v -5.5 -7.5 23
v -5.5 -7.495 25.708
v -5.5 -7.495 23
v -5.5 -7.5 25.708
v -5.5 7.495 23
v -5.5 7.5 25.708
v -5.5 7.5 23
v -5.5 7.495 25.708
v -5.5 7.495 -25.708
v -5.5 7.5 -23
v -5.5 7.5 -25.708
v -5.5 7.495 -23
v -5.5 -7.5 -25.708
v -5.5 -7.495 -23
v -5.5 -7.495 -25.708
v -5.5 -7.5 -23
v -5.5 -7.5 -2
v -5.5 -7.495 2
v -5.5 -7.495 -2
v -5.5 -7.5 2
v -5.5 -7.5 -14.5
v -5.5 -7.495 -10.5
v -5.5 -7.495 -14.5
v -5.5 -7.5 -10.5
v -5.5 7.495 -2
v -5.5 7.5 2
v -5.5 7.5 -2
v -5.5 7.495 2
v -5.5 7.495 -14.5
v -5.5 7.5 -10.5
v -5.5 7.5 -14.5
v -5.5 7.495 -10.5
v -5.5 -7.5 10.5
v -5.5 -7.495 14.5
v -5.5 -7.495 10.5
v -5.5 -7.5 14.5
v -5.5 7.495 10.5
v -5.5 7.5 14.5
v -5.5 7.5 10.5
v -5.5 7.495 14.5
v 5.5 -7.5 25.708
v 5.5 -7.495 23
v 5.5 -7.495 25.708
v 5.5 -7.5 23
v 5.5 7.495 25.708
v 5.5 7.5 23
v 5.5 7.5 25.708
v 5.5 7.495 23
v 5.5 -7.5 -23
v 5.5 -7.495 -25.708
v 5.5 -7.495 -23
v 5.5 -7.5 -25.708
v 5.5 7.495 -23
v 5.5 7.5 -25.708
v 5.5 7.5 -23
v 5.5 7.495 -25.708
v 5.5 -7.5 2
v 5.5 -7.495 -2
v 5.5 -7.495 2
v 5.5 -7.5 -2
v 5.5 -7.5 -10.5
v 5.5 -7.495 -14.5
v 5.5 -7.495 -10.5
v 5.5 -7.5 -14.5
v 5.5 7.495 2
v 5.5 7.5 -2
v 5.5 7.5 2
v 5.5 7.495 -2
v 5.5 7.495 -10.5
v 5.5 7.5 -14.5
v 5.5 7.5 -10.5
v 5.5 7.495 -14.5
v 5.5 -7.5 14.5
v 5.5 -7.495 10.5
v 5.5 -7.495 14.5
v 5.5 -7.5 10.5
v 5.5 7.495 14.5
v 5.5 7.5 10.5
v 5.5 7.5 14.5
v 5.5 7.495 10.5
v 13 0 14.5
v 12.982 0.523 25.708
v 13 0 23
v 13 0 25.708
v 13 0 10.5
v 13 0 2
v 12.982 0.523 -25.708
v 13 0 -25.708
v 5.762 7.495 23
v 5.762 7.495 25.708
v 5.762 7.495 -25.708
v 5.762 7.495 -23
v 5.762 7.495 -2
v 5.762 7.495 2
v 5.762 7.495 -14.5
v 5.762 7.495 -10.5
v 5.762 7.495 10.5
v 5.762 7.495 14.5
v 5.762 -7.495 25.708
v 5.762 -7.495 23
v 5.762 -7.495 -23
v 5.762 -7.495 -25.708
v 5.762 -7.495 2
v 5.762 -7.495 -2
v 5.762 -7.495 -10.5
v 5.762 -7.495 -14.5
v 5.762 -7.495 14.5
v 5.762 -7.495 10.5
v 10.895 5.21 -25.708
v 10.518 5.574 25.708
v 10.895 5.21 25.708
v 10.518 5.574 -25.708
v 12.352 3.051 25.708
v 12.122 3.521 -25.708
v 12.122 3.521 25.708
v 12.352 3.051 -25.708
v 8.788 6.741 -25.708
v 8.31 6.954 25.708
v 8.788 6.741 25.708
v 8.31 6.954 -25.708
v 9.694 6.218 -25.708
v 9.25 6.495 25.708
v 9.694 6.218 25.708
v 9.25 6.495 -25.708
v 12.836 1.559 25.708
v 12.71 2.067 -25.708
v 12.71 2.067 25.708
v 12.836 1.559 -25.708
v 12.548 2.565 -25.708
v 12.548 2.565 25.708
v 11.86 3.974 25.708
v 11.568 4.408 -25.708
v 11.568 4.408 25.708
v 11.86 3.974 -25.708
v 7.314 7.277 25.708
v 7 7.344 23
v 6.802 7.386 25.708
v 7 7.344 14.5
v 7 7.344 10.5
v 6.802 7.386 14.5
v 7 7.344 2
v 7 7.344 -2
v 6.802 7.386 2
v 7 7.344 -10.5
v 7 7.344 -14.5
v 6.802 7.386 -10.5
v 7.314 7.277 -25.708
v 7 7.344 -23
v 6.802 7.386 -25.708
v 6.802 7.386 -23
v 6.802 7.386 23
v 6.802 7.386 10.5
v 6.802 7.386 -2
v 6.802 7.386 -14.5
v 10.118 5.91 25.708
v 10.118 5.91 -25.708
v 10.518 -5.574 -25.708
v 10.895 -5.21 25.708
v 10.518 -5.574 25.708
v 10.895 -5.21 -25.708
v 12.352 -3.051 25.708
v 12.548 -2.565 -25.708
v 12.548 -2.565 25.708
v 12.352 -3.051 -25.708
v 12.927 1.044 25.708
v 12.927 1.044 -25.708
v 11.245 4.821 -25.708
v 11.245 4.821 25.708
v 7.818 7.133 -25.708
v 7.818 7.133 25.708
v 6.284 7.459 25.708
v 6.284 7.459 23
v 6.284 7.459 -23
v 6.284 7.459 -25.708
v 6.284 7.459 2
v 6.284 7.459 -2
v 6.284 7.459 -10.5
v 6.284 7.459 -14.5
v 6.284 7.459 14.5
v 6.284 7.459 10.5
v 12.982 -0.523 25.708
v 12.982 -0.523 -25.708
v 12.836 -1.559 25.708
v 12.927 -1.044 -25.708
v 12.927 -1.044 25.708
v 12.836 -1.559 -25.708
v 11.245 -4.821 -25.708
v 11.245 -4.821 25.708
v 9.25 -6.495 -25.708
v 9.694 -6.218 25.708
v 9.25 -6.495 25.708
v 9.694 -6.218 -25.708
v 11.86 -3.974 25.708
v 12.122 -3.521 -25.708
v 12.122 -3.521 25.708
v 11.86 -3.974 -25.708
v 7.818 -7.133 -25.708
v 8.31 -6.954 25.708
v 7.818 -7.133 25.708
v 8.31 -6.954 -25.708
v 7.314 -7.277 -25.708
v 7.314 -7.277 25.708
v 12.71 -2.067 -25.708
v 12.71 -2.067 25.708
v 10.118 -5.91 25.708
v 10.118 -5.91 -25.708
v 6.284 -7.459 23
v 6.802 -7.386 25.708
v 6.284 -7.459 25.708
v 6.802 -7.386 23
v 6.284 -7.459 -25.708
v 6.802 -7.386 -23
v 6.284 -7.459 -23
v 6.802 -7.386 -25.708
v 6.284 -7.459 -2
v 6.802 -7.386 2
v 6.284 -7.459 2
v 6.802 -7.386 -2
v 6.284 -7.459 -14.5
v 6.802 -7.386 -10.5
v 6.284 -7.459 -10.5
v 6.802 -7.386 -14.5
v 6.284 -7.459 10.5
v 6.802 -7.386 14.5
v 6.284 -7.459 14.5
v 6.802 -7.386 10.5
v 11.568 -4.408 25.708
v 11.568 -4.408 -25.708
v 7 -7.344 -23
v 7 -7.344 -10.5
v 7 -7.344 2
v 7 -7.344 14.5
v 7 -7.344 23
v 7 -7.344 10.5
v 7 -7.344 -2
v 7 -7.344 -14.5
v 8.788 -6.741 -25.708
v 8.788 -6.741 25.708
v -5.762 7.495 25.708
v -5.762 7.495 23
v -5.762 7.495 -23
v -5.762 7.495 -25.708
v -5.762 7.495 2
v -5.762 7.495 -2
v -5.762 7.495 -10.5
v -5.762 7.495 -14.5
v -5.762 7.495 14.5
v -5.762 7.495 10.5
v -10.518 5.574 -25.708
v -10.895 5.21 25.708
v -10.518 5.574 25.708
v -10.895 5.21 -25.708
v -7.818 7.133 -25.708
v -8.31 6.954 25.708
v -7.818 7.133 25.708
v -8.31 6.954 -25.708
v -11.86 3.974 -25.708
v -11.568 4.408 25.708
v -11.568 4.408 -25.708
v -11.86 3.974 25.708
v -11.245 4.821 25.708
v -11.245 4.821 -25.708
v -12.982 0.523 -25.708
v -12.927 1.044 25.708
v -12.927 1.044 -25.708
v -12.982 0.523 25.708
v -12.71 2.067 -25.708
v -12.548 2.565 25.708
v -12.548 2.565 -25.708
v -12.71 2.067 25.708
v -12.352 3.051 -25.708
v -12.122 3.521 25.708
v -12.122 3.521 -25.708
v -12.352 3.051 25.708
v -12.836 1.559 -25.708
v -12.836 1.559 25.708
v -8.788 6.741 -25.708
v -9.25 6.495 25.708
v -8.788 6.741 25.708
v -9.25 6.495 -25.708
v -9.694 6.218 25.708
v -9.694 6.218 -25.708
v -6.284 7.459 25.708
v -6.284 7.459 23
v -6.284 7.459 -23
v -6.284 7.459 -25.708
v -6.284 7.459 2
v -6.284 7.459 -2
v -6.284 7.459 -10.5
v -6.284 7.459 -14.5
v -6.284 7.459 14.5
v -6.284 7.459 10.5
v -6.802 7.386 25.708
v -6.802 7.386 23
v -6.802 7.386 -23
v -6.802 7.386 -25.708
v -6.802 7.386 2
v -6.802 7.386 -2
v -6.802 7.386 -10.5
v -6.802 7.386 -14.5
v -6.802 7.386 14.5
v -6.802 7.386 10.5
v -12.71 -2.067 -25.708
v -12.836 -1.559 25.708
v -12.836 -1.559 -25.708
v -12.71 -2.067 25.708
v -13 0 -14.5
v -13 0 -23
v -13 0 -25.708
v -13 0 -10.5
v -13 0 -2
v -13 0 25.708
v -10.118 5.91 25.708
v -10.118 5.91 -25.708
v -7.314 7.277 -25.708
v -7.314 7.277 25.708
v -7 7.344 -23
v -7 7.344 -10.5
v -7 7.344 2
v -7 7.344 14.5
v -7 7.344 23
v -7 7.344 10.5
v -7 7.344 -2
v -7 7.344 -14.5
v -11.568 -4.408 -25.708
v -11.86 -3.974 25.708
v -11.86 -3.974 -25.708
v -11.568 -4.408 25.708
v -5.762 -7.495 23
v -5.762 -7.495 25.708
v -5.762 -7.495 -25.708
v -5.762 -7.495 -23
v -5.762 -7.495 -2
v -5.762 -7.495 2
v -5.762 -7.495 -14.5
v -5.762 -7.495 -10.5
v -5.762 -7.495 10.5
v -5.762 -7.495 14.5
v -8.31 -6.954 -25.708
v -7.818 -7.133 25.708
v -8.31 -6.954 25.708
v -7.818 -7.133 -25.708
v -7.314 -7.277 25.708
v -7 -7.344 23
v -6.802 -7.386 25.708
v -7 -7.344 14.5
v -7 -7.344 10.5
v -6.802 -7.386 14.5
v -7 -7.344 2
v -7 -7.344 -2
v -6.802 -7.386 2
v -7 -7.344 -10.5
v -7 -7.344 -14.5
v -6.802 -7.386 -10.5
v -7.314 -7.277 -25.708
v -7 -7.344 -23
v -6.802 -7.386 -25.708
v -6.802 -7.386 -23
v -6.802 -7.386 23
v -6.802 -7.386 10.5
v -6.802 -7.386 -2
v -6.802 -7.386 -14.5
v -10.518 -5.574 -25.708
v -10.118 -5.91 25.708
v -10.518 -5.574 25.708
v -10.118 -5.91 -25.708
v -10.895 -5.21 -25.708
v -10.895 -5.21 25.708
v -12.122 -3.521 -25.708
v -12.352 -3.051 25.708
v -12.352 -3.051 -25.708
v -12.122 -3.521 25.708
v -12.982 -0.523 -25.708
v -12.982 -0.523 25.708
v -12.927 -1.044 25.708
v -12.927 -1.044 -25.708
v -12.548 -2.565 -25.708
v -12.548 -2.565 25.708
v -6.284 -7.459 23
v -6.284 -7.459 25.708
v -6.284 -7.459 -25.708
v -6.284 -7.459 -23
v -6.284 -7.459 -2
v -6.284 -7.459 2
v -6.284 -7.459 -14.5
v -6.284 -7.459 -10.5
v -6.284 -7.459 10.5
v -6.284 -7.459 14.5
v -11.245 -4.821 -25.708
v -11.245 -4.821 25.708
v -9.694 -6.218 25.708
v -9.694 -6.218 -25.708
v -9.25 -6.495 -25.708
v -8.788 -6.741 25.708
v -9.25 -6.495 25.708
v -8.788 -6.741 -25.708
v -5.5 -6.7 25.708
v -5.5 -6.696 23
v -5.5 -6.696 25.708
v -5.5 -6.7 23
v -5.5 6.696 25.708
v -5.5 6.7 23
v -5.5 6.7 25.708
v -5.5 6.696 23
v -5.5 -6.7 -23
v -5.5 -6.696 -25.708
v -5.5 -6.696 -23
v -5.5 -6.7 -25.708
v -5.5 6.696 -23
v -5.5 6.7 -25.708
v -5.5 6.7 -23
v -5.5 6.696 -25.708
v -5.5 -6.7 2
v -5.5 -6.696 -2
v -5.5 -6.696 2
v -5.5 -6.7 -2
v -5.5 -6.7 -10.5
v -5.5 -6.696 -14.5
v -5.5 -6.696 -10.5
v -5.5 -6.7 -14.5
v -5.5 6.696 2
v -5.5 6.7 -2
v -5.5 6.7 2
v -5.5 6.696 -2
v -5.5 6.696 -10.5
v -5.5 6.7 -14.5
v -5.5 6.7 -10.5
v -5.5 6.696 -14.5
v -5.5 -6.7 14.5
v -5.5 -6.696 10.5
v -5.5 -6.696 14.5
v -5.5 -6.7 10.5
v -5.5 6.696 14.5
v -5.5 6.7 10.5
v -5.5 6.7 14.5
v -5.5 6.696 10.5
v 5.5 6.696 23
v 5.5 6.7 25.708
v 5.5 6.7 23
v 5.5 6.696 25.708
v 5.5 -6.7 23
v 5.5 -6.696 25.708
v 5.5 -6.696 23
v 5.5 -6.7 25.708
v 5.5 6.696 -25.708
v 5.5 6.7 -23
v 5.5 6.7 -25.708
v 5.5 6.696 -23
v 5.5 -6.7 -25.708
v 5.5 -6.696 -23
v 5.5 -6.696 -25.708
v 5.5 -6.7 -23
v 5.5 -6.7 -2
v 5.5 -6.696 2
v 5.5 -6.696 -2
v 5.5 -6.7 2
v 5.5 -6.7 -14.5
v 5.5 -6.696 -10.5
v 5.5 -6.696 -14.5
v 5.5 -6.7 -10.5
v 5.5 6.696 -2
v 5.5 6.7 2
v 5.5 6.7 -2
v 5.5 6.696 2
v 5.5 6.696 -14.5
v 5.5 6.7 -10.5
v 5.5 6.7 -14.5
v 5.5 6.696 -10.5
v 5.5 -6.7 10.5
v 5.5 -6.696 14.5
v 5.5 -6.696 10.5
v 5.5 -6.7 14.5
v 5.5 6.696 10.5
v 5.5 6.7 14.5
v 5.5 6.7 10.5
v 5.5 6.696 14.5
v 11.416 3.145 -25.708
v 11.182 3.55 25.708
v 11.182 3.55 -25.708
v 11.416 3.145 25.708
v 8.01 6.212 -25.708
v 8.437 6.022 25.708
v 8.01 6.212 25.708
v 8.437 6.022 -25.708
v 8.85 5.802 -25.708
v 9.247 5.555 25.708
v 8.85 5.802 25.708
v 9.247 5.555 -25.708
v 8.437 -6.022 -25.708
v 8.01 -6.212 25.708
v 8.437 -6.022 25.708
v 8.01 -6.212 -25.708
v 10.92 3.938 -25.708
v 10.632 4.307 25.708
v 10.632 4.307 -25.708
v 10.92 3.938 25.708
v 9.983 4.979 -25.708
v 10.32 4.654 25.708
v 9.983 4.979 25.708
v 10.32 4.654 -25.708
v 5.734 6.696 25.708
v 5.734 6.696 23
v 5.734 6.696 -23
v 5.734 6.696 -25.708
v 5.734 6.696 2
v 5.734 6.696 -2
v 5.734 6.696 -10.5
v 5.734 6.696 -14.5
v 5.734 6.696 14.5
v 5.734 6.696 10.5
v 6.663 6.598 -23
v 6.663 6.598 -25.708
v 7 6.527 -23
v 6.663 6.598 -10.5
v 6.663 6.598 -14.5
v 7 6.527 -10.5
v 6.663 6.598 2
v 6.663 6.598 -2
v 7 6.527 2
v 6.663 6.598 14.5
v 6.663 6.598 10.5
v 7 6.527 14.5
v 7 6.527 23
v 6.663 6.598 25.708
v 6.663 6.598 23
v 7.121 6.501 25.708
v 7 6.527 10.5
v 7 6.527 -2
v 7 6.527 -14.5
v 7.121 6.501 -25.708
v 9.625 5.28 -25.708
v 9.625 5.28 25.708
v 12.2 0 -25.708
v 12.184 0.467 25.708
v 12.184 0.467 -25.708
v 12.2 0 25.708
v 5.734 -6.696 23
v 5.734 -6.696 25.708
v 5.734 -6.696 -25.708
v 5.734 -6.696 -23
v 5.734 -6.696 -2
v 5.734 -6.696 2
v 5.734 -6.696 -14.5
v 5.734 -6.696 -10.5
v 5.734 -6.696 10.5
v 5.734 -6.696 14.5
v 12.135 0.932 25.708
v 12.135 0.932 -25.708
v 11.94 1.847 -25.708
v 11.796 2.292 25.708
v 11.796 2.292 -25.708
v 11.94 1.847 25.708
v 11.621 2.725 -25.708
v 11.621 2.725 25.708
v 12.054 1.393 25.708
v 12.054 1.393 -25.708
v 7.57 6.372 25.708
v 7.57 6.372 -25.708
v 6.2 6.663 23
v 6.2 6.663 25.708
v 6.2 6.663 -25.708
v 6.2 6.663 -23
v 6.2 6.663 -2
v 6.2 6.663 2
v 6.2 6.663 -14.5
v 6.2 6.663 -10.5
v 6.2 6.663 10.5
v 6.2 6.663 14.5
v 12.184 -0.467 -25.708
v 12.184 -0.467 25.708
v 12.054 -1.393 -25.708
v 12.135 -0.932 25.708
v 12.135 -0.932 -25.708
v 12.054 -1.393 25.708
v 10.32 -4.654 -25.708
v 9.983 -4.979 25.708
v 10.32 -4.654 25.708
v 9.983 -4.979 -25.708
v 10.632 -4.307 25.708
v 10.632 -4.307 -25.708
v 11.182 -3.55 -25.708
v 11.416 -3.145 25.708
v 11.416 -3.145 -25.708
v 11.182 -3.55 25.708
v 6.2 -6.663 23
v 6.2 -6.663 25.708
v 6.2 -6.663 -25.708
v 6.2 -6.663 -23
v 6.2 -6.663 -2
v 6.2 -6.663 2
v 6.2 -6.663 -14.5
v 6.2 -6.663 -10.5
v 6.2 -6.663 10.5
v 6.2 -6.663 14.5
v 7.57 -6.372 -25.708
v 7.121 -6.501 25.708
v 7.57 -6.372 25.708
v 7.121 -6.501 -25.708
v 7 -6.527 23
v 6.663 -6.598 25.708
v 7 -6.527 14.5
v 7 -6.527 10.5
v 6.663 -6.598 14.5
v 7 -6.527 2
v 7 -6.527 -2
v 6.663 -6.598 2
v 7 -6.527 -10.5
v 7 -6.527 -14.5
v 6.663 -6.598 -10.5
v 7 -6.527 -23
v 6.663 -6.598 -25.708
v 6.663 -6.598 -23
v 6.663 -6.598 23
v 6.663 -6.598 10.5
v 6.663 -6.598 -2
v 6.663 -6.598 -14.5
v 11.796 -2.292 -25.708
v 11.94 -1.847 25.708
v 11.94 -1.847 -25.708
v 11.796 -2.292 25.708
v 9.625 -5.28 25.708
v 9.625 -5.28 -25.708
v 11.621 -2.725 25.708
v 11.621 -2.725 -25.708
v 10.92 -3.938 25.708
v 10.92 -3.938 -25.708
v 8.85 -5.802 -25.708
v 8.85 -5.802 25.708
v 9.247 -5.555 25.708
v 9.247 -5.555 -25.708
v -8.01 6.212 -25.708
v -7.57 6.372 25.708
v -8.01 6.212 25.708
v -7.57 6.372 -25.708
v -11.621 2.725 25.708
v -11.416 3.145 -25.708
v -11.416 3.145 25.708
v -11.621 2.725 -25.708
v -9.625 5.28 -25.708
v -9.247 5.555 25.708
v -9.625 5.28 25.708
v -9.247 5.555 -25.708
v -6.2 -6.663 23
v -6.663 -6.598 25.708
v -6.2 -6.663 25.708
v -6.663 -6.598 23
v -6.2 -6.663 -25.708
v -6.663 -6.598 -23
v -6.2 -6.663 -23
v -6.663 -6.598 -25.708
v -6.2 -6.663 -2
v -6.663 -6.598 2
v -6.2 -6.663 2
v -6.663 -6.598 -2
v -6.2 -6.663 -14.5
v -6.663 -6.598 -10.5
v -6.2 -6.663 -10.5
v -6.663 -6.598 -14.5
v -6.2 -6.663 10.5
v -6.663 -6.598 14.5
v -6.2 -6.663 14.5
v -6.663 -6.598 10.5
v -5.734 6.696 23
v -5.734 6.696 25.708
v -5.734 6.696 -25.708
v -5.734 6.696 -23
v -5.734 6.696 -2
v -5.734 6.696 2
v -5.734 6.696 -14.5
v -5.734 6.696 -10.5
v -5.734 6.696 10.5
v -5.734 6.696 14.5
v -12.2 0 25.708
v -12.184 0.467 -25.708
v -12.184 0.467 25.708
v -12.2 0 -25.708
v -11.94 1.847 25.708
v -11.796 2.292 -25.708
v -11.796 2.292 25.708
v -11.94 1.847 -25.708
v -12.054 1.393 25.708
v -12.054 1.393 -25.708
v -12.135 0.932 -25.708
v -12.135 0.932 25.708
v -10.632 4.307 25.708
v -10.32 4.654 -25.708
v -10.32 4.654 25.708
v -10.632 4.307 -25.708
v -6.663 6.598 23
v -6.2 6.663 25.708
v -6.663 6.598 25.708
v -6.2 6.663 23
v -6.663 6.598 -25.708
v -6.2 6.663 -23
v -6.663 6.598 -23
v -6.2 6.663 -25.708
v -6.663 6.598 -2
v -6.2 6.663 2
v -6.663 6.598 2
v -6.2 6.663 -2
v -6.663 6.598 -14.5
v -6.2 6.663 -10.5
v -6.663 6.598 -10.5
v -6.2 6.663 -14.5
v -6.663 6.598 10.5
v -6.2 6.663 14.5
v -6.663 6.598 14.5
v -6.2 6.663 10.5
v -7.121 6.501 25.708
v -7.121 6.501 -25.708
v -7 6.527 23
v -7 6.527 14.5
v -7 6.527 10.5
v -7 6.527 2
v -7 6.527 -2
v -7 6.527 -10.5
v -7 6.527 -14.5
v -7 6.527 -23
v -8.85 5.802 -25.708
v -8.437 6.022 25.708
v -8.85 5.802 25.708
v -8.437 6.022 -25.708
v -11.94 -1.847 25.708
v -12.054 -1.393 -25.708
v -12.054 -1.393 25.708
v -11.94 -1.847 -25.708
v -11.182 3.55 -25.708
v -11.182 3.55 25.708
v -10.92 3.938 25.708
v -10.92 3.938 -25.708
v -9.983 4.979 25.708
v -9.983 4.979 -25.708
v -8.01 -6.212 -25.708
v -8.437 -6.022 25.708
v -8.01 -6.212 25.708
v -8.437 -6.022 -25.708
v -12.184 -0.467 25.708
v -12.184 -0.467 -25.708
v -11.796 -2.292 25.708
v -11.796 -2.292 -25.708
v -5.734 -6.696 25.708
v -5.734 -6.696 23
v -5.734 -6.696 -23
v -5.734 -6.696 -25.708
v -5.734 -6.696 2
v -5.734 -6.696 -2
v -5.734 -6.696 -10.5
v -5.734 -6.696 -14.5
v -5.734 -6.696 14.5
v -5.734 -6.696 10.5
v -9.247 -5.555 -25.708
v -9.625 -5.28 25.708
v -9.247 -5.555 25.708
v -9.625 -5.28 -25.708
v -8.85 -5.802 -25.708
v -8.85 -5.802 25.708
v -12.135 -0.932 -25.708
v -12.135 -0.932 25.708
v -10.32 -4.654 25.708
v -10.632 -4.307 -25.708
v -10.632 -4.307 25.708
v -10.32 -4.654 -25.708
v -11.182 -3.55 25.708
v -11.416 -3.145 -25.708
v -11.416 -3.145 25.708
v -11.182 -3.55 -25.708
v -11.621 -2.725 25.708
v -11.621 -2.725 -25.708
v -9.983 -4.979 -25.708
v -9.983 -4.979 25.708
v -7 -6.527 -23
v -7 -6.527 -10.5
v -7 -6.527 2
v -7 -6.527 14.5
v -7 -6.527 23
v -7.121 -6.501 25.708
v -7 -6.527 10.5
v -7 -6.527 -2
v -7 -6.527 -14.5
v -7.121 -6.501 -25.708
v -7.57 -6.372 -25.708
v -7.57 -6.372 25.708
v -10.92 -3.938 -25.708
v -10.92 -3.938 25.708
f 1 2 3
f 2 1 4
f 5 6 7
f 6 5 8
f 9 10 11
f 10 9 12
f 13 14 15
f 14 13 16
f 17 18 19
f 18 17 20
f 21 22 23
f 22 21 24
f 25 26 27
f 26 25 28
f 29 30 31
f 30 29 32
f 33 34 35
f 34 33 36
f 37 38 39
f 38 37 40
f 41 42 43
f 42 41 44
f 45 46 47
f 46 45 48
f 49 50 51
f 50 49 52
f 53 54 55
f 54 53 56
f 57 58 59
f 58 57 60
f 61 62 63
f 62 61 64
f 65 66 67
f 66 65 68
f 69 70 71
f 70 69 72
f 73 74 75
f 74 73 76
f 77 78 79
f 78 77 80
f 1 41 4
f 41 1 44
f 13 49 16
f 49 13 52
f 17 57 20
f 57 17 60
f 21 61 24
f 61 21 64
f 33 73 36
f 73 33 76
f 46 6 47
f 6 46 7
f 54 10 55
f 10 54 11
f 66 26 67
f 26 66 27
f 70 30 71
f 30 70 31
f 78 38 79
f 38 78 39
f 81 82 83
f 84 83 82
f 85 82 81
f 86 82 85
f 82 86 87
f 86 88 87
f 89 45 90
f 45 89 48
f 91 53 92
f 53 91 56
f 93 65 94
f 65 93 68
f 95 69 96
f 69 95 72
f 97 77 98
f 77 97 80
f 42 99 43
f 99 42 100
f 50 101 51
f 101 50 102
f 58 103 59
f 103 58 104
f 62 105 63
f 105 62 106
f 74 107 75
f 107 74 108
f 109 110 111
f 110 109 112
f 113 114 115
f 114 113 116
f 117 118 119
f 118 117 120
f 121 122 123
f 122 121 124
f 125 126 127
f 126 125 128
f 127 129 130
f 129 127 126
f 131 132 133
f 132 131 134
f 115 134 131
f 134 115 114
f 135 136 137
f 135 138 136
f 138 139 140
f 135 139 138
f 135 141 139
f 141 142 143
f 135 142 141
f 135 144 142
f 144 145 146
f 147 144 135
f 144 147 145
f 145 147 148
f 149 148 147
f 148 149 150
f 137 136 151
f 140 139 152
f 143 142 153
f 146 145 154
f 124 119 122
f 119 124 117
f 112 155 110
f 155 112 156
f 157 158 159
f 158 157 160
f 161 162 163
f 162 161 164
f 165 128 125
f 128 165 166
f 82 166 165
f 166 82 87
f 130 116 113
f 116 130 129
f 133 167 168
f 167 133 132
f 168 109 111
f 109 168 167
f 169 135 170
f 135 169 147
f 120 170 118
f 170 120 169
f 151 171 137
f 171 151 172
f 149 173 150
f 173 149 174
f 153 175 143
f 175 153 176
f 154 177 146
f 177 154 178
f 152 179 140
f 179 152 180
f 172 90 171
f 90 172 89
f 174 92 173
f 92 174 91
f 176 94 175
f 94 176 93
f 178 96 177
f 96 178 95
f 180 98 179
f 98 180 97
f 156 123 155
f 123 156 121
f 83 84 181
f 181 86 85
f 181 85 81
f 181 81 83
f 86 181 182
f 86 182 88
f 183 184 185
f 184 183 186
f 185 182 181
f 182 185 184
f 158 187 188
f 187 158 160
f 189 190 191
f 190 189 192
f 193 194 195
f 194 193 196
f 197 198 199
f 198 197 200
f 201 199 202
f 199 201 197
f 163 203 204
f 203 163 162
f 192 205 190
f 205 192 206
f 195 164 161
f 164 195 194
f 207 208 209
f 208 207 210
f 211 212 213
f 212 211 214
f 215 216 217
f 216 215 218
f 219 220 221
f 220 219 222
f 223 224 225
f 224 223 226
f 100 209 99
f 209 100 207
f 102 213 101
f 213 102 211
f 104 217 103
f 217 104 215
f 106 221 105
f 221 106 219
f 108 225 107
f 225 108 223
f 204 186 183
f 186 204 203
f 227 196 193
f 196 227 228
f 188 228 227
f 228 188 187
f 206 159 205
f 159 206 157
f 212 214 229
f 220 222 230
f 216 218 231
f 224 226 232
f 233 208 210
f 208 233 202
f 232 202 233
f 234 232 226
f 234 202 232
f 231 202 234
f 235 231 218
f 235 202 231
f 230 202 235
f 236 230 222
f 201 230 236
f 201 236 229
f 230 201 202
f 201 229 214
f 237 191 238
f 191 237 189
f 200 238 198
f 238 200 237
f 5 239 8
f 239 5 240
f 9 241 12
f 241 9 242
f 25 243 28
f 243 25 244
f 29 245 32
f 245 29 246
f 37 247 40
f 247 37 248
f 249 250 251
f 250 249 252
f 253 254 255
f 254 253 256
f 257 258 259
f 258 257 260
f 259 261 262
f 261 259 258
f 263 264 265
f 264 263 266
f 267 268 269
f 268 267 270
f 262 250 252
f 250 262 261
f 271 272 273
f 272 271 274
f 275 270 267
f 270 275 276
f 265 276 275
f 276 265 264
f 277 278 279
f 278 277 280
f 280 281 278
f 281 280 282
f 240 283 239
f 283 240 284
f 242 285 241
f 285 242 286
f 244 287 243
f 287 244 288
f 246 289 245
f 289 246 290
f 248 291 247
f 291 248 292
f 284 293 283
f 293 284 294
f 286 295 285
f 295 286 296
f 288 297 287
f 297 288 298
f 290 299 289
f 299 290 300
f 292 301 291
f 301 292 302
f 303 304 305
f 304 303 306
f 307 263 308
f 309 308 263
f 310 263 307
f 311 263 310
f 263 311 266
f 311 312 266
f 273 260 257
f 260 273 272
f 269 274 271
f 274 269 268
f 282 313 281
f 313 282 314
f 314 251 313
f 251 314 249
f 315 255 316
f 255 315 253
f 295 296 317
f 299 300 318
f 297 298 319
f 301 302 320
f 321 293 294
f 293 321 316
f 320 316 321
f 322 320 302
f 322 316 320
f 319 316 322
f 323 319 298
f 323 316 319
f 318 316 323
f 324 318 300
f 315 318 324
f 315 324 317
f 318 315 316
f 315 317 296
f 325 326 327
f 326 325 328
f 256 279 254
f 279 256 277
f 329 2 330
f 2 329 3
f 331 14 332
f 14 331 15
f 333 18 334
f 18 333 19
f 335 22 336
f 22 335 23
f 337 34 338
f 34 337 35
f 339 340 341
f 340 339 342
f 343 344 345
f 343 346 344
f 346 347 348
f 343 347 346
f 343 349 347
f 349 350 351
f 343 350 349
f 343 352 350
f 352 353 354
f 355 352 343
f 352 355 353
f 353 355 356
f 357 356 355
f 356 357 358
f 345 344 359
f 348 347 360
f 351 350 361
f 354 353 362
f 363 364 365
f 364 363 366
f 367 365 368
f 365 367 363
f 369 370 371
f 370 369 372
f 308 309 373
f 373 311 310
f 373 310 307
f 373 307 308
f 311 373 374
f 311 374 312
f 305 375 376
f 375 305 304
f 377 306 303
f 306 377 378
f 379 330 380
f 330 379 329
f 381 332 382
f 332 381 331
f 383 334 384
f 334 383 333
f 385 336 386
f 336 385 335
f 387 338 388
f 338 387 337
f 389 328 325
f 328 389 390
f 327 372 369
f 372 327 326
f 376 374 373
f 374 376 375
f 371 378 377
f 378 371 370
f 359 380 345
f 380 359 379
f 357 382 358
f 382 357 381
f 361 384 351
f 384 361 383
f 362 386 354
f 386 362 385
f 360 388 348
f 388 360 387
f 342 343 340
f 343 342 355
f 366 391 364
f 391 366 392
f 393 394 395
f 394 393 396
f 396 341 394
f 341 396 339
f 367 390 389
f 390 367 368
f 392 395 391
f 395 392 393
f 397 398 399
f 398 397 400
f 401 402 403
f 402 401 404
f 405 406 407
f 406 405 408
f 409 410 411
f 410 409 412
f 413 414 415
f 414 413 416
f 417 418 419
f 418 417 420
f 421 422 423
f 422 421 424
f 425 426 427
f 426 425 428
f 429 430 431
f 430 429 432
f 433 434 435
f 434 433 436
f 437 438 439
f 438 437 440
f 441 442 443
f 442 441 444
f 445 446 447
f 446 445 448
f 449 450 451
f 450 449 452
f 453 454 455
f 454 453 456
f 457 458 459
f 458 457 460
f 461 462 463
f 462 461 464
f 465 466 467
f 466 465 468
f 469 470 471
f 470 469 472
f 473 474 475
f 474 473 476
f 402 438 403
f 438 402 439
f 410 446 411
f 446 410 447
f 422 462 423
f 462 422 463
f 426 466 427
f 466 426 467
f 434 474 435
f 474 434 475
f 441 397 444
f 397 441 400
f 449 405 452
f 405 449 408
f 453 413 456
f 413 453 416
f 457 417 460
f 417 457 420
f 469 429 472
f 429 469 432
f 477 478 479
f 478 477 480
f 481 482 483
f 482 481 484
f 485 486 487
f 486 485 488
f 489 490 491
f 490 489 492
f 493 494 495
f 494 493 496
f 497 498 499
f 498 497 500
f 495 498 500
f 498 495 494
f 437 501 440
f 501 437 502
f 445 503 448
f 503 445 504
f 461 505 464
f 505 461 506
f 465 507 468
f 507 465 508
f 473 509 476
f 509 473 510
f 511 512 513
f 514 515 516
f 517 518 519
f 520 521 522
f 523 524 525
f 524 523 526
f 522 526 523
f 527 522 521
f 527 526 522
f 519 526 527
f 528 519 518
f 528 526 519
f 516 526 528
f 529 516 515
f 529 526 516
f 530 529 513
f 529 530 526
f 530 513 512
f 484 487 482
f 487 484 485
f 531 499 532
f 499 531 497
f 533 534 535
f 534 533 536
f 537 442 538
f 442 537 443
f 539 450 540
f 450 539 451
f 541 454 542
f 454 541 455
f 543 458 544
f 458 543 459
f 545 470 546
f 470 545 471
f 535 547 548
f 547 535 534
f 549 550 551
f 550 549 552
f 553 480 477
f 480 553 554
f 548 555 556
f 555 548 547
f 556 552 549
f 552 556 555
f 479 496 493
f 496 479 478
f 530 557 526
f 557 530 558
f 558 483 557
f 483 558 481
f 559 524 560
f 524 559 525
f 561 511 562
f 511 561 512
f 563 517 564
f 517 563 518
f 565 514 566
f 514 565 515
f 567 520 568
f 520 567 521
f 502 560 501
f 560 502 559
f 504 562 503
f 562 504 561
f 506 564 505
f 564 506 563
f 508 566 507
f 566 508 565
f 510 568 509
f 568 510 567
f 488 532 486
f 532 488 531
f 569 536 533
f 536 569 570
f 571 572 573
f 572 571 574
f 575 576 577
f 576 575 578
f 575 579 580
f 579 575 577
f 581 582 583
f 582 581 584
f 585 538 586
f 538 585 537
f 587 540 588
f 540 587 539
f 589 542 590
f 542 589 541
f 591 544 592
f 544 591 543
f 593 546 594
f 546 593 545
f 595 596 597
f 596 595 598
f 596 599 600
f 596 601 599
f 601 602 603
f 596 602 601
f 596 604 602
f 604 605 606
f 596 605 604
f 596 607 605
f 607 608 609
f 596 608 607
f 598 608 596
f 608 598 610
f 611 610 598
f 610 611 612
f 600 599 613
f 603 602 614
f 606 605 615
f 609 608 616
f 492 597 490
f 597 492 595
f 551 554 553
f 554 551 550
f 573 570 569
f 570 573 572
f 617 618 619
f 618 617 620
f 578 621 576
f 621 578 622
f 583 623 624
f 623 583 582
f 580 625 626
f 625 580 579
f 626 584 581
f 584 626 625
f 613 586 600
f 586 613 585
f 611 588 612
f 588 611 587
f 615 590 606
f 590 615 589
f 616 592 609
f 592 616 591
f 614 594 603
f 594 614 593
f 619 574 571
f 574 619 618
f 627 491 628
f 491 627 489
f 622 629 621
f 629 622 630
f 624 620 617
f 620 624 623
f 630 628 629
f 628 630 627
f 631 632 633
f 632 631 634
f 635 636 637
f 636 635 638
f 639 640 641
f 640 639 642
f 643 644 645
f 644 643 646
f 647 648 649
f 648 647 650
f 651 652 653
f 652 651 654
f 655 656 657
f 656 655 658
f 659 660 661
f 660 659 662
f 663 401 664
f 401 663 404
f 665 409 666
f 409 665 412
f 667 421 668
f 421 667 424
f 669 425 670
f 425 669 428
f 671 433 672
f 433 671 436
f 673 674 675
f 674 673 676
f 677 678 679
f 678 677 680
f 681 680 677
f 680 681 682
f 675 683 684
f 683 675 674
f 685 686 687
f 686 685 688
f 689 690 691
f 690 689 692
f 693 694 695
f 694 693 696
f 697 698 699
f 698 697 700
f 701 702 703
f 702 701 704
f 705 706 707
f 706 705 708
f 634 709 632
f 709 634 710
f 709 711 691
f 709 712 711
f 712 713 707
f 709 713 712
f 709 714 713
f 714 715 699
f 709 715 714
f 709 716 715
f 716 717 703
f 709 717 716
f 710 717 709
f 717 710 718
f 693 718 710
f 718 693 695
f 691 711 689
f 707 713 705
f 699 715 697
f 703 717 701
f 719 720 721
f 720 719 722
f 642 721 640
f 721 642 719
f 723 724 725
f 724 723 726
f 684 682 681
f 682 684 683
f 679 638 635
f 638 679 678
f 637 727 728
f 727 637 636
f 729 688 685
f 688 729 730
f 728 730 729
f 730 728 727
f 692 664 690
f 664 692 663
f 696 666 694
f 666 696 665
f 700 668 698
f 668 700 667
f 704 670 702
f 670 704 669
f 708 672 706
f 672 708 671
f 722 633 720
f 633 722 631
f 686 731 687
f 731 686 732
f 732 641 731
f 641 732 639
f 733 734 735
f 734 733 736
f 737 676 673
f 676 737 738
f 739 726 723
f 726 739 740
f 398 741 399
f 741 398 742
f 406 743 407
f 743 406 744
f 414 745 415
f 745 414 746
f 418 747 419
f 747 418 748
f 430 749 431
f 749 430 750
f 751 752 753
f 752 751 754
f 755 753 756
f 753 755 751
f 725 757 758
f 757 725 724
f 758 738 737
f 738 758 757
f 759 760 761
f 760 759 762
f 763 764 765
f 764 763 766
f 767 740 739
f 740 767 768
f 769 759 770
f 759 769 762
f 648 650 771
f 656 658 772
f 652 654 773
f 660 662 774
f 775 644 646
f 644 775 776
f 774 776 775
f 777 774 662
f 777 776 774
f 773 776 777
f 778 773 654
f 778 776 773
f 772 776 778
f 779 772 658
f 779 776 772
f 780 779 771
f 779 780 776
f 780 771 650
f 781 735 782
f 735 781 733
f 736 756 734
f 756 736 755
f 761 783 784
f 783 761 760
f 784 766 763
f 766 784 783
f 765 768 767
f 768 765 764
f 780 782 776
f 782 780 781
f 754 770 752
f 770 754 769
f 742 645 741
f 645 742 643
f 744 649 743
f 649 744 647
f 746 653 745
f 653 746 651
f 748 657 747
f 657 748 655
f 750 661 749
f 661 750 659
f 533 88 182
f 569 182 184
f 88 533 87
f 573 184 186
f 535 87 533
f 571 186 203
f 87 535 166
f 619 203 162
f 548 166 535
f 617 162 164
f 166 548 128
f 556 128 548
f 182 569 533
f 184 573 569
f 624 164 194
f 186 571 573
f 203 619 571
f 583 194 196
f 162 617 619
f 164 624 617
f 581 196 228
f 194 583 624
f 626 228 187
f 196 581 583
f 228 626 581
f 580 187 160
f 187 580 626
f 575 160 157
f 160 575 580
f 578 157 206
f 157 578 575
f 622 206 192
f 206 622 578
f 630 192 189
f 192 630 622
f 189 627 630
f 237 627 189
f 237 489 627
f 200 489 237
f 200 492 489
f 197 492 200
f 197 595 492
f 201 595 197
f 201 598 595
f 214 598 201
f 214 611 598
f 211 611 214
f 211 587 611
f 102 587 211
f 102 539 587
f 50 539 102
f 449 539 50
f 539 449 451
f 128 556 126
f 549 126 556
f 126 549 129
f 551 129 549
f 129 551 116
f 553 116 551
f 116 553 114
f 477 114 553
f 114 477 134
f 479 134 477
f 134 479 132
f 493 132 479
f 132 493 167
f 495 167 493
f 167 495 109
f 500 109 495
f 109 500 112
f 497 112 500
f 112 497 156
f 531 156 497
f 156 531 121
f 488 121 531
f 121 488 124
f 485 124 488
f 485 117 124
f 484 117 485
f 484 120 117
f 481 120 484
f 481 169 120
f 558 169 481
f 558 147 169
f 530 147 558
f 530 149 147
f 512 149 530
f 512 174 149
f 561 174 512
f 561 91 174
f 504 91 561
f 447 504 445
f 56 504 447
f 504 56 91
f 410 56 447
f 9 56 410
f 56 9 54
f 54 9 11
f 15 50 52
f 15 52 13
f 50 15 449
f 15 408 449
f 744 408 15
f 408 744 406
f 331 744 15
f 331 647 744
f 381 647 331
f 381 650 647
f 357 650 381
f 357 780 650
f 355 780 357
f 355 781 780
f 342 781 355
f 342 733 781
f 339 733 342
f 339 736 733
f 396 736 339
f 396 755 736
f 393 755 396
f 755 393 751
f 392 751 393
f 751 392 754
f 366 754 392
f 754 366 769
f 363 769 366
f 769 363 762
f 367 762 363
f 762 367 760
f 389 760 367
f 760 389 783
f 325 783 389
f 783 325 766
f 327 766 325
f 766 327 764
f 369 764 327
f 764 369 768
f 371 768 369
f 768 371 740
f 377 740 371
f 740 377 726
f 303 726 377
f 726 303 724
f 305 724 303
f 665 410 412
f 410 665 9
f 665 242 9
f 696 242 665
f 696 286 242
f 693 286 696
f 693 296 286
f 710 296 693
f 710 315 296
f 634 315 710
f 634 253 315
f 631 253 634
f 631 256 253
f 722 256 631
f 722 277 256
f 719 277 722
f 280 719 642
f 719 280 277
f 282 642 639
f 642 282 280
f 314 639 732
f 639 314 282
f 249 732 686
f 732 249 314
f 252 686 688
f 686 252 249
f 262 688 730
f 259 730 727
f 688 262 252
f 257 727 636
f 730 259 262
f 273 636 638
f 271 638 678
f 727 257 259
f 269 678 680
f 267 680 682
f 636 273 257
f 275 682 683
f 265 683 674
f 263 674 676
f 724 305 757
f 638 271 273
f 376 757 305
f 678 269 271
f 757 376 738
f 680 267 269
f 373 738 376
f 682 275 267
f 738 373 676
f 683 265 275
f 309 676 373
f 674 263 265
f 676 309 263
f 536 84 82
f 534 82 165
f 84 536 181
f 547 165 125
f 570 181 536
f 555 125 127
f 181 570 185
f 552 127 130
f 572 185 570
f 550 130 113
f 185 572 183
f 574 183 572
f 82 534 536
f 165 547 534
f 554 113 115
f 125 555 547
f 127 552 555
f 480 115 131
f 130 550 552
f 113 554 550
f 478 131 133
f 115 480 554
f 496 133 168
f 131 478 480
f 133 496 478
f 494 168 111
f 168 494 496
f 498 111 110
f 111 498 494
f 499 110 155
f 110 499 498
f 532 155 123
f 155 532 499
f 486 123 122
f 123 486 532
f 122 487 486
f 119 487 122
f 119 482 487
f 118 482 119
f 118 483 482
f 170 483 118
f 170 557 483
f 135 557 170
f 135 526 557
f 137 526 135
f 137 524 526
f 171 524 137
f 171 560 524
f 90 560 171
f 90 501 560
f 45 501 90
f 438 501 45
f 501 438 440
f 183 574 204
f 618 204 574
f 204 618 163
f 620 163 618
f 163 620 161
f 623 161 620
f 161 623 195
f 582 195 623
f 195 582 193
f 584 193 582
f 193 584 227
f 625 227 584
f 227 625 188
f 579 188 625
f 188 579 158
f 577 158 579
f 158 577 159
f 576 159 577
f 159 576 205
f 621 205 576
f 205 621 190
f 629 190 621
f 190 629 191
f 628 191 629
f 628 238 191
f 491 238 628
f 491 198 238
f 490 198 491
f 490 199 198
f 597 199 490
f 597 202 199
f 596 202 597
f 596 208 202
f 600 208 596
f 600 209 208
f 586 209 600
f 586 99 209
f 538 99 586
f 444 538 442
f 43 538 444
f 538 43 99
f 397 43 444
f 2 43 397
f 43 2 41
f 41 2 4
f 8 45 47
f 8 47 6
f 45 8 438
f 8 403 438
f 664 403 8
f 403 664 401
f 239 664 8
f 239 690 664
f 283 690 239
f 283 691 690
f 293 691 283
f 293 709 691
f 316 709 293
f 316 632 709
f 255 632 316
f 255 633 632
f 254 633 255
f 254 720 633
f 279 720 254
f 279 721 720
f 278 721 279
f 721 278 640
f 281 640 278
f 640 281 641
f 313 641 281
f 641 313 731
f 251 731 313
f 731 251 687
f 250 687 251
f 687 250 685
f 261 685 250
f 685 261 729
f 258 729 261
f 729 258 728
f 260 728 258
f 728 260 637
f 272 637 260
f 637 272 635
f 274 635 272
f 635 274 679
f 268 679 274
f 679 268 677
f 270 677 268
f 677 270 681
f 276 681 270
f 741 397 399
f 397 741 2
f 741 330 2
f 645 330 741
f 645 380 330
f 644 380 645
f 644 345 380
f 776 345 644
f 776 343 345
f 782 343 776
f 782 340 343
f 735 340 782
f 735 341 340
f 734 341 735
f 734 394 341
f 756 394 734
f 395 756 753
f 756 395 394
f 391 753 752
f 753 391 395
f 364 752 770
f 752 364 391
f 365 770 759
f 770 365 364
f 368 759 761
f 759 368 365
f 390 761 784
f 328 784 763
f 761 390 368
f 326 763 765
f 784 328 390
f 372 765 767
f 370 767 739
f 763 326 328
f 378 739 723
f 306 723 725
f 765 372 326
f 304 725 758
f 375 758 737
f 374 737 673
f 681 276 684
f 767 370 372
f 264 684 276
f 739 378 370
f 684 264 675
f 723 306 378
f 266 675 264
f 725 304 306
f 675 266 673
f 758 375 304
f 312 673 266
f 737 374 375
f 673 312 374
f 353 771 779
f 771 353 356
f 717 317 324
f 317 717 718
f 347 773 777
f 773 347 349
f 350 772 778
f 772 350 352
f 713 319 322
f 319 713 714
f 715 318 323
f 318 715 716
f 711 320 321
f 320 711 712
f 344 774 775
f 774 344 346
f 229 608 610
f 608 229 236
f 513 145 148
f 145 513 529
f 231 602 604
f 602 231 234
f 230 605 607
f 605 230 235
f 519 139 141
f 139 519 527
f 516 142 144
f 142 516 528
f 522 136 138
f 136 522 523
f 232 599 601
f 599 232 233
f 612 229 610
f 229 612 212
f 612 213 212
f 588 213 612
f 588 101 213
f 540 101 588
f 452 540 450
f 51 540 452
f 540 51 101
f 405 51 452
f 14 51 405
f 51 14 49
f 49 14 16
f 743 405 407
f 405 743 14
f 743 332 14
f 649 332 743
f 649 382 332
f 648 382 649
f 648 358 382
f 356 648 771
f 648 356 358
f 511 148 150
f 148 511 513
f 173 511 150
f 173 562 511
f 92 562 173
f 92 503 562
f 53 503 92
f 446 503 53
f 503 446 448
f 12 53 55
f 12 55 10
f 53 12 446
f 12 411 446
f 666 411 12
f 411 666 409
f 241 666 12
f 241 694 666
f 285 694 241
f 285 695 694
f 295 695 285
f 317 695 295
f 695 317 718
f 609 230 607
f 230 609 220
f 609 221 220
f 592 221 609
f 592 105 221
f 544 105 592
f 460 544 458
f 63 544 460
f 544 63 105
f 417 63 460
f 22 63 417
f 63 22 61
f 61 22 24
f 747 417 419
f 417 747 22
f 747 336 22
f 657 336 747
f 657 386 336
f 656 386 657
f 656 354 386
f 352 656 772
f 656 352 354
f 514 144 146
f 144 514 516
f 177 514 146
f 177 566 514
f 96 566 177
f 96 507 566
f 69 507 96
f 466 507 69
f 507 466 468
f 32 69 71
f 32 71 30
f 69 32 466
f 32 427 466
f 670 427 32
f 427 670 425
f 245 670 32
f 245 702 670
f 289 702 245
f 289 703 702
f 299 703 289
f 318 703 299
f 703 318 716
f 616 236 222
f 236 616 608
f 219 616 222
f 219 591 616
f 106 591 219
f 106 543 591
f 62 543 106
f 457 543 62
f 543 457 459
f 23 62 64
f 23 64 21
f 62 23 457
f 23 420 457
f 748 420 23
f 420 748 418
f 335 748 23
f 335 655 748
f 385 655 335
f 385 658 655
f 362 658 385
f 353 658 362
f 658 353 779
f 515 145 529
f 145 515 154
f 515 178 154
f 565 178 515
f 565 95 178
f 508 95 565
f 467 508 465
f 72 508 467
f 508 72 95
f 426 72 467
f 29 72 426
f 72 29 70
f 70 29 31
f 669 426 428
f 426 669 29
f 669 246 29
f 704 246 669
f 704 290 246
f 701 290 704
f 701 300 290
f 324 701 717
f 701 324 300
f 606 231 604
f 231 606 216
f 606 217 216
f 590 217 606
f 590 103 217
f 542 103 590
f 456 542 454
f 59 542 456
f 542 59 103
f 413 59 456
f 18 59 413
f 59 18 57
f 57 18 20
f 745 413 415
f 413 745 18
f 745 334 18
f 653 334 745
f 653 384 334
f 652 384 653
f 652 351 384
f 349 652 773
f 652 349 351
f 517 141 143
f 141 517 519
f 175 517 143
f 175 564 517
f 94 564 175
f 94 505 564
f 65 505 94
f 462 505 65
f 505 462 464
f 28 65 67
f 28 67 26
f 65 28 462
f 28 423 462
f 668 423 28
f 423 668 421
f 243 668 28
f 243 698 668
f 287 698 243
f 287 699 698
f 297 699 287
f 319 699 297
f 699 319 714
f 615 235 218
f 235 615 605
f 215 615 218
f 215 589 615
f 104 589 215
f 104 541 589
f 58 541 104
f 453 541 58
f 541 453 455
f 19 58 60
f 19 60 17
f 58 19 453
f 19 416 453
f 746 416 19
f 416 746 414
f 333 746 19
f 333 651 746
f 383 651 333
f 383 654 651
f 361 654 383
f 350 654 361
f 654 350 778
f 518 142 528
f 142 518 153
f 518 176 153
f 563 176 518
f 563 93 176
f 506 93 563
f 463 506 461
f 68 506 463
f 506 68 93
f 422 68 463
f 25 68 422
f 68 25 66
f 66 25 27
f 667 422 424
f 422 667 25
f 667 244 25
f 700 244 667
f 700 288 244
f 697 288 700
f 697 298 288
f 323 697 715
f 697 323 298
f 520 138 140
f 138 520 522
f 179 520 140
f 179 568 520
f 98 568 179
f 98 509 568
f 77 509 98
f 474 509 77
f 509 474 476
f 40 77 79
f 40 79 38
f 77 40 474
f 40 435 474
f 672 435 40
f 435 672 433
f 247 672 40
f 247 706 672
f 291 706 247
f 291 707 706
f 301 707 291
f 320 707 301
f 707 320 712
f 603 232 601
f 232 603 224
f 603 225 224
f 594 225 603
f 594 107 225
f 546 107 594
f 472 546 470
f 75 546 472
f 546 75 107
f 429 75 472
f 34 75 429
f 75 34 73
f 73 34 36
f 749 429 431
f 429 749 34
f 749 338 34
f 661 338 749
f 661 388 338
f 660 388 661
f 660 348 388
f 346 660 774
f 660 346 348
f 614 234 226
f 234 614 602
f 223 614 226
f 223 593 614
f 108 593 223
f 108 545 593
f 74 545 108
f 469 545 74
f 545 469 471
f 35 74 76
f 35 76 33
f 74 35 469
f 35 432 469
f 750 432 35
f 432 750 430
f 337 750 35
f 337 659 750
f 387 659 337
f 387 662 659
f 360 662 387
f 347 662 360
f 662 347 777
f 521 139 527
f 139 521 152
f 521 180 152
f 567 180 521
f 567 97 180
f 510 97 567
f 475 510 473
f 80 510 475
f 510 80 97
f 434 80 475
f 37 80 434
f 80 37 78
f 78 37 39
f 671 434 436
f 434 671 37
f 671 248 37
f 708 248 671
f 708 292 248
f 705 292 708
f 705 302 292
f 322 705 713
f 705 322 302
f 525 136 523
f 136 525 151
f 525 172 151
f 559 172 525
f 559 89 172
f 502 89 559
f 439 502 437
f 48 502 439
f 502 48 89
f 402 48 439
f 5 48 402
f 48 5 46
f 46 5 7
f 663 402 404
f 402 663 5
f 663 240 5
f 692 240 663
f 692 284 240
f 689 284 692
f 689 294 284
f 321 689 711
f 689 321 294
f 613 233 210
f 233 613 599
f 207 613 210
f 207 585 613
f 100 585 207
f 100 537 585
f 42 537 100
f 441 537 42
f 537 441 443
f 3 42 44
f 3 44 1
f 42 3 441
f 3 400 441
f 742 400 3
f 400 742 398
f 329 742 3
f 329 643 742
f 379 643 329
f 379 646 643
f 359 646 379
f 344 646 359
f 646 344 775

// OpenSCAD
$fn = 90;

THICKNESS = sqrt(2);
HEIGHT = 50;
WIDTH = 30 + 6.25;
DEPTH = 15;
N = 5;
WALL_THICKNESS = 0.8;
ATOM = 0.001;
ROT = 45;

WIDTH = 30 -0.7;
N  = 4;
N2 = 5;
WALL_THICKNESS = 0.8;
THICKNESS1 = 4;
THICKNESS2 = 6;
WIDTH = 30  -4;
ROT = 0;

module grid() {
    for (i=[-N:N])
        translate([0, 0, HEIGHT/N*i])
        cube([100,100,THICKNESS], true);

    for (i=[-N:N])
        translate([0, 0, HEIGHT/N*i])
        cube([100,100,THICKNESS], true);
}

module grid() {
    for (i=[-N:N])
        translate([0, 0, HEIGHT/N*i])
        rotate([ROT, 0, ROT])
        cube([100,100,THICKNESS1], true);

    rotate([0, 90, 0])
    for (i=[-N2:N2])
        if(i)
        translate([0, 0, HEIGHT/N2*i])
        rotate([-ROT, 0, ROT])
        cube([100,100,THICKNESS2], true);
}

module rounded(offset, h) {
    cube([WIDTH-DEPTH-offset*0, DEPTH-offset*2, h+ATOM*2], true);

    translate([WIDTH/2-DEPTH/2, 0, 0])
    cylinder(d=DEPTH-offset*2, h=h+ATOM*2, center=true);

    translate([-WIDTH/2+DEPTH/2, 0, 0])
    cylinder(d=DEPTH-offset*2, h=h+ATOM*2, center=true);
}

module box(h) {
    difference() {
        rounded(0, h);
        rounded(WALL_THICKNESS, h+ATOM*2);
    }
}

module all() {
    intersection() {
        grid();
        box(HEIGHT);
    }

    translate([0, 0, -HEIGHT/2]) box(THICKNESS);
    translate([0, 0,  HEIGHT/2]) box(THICKNESS);
}

all();
